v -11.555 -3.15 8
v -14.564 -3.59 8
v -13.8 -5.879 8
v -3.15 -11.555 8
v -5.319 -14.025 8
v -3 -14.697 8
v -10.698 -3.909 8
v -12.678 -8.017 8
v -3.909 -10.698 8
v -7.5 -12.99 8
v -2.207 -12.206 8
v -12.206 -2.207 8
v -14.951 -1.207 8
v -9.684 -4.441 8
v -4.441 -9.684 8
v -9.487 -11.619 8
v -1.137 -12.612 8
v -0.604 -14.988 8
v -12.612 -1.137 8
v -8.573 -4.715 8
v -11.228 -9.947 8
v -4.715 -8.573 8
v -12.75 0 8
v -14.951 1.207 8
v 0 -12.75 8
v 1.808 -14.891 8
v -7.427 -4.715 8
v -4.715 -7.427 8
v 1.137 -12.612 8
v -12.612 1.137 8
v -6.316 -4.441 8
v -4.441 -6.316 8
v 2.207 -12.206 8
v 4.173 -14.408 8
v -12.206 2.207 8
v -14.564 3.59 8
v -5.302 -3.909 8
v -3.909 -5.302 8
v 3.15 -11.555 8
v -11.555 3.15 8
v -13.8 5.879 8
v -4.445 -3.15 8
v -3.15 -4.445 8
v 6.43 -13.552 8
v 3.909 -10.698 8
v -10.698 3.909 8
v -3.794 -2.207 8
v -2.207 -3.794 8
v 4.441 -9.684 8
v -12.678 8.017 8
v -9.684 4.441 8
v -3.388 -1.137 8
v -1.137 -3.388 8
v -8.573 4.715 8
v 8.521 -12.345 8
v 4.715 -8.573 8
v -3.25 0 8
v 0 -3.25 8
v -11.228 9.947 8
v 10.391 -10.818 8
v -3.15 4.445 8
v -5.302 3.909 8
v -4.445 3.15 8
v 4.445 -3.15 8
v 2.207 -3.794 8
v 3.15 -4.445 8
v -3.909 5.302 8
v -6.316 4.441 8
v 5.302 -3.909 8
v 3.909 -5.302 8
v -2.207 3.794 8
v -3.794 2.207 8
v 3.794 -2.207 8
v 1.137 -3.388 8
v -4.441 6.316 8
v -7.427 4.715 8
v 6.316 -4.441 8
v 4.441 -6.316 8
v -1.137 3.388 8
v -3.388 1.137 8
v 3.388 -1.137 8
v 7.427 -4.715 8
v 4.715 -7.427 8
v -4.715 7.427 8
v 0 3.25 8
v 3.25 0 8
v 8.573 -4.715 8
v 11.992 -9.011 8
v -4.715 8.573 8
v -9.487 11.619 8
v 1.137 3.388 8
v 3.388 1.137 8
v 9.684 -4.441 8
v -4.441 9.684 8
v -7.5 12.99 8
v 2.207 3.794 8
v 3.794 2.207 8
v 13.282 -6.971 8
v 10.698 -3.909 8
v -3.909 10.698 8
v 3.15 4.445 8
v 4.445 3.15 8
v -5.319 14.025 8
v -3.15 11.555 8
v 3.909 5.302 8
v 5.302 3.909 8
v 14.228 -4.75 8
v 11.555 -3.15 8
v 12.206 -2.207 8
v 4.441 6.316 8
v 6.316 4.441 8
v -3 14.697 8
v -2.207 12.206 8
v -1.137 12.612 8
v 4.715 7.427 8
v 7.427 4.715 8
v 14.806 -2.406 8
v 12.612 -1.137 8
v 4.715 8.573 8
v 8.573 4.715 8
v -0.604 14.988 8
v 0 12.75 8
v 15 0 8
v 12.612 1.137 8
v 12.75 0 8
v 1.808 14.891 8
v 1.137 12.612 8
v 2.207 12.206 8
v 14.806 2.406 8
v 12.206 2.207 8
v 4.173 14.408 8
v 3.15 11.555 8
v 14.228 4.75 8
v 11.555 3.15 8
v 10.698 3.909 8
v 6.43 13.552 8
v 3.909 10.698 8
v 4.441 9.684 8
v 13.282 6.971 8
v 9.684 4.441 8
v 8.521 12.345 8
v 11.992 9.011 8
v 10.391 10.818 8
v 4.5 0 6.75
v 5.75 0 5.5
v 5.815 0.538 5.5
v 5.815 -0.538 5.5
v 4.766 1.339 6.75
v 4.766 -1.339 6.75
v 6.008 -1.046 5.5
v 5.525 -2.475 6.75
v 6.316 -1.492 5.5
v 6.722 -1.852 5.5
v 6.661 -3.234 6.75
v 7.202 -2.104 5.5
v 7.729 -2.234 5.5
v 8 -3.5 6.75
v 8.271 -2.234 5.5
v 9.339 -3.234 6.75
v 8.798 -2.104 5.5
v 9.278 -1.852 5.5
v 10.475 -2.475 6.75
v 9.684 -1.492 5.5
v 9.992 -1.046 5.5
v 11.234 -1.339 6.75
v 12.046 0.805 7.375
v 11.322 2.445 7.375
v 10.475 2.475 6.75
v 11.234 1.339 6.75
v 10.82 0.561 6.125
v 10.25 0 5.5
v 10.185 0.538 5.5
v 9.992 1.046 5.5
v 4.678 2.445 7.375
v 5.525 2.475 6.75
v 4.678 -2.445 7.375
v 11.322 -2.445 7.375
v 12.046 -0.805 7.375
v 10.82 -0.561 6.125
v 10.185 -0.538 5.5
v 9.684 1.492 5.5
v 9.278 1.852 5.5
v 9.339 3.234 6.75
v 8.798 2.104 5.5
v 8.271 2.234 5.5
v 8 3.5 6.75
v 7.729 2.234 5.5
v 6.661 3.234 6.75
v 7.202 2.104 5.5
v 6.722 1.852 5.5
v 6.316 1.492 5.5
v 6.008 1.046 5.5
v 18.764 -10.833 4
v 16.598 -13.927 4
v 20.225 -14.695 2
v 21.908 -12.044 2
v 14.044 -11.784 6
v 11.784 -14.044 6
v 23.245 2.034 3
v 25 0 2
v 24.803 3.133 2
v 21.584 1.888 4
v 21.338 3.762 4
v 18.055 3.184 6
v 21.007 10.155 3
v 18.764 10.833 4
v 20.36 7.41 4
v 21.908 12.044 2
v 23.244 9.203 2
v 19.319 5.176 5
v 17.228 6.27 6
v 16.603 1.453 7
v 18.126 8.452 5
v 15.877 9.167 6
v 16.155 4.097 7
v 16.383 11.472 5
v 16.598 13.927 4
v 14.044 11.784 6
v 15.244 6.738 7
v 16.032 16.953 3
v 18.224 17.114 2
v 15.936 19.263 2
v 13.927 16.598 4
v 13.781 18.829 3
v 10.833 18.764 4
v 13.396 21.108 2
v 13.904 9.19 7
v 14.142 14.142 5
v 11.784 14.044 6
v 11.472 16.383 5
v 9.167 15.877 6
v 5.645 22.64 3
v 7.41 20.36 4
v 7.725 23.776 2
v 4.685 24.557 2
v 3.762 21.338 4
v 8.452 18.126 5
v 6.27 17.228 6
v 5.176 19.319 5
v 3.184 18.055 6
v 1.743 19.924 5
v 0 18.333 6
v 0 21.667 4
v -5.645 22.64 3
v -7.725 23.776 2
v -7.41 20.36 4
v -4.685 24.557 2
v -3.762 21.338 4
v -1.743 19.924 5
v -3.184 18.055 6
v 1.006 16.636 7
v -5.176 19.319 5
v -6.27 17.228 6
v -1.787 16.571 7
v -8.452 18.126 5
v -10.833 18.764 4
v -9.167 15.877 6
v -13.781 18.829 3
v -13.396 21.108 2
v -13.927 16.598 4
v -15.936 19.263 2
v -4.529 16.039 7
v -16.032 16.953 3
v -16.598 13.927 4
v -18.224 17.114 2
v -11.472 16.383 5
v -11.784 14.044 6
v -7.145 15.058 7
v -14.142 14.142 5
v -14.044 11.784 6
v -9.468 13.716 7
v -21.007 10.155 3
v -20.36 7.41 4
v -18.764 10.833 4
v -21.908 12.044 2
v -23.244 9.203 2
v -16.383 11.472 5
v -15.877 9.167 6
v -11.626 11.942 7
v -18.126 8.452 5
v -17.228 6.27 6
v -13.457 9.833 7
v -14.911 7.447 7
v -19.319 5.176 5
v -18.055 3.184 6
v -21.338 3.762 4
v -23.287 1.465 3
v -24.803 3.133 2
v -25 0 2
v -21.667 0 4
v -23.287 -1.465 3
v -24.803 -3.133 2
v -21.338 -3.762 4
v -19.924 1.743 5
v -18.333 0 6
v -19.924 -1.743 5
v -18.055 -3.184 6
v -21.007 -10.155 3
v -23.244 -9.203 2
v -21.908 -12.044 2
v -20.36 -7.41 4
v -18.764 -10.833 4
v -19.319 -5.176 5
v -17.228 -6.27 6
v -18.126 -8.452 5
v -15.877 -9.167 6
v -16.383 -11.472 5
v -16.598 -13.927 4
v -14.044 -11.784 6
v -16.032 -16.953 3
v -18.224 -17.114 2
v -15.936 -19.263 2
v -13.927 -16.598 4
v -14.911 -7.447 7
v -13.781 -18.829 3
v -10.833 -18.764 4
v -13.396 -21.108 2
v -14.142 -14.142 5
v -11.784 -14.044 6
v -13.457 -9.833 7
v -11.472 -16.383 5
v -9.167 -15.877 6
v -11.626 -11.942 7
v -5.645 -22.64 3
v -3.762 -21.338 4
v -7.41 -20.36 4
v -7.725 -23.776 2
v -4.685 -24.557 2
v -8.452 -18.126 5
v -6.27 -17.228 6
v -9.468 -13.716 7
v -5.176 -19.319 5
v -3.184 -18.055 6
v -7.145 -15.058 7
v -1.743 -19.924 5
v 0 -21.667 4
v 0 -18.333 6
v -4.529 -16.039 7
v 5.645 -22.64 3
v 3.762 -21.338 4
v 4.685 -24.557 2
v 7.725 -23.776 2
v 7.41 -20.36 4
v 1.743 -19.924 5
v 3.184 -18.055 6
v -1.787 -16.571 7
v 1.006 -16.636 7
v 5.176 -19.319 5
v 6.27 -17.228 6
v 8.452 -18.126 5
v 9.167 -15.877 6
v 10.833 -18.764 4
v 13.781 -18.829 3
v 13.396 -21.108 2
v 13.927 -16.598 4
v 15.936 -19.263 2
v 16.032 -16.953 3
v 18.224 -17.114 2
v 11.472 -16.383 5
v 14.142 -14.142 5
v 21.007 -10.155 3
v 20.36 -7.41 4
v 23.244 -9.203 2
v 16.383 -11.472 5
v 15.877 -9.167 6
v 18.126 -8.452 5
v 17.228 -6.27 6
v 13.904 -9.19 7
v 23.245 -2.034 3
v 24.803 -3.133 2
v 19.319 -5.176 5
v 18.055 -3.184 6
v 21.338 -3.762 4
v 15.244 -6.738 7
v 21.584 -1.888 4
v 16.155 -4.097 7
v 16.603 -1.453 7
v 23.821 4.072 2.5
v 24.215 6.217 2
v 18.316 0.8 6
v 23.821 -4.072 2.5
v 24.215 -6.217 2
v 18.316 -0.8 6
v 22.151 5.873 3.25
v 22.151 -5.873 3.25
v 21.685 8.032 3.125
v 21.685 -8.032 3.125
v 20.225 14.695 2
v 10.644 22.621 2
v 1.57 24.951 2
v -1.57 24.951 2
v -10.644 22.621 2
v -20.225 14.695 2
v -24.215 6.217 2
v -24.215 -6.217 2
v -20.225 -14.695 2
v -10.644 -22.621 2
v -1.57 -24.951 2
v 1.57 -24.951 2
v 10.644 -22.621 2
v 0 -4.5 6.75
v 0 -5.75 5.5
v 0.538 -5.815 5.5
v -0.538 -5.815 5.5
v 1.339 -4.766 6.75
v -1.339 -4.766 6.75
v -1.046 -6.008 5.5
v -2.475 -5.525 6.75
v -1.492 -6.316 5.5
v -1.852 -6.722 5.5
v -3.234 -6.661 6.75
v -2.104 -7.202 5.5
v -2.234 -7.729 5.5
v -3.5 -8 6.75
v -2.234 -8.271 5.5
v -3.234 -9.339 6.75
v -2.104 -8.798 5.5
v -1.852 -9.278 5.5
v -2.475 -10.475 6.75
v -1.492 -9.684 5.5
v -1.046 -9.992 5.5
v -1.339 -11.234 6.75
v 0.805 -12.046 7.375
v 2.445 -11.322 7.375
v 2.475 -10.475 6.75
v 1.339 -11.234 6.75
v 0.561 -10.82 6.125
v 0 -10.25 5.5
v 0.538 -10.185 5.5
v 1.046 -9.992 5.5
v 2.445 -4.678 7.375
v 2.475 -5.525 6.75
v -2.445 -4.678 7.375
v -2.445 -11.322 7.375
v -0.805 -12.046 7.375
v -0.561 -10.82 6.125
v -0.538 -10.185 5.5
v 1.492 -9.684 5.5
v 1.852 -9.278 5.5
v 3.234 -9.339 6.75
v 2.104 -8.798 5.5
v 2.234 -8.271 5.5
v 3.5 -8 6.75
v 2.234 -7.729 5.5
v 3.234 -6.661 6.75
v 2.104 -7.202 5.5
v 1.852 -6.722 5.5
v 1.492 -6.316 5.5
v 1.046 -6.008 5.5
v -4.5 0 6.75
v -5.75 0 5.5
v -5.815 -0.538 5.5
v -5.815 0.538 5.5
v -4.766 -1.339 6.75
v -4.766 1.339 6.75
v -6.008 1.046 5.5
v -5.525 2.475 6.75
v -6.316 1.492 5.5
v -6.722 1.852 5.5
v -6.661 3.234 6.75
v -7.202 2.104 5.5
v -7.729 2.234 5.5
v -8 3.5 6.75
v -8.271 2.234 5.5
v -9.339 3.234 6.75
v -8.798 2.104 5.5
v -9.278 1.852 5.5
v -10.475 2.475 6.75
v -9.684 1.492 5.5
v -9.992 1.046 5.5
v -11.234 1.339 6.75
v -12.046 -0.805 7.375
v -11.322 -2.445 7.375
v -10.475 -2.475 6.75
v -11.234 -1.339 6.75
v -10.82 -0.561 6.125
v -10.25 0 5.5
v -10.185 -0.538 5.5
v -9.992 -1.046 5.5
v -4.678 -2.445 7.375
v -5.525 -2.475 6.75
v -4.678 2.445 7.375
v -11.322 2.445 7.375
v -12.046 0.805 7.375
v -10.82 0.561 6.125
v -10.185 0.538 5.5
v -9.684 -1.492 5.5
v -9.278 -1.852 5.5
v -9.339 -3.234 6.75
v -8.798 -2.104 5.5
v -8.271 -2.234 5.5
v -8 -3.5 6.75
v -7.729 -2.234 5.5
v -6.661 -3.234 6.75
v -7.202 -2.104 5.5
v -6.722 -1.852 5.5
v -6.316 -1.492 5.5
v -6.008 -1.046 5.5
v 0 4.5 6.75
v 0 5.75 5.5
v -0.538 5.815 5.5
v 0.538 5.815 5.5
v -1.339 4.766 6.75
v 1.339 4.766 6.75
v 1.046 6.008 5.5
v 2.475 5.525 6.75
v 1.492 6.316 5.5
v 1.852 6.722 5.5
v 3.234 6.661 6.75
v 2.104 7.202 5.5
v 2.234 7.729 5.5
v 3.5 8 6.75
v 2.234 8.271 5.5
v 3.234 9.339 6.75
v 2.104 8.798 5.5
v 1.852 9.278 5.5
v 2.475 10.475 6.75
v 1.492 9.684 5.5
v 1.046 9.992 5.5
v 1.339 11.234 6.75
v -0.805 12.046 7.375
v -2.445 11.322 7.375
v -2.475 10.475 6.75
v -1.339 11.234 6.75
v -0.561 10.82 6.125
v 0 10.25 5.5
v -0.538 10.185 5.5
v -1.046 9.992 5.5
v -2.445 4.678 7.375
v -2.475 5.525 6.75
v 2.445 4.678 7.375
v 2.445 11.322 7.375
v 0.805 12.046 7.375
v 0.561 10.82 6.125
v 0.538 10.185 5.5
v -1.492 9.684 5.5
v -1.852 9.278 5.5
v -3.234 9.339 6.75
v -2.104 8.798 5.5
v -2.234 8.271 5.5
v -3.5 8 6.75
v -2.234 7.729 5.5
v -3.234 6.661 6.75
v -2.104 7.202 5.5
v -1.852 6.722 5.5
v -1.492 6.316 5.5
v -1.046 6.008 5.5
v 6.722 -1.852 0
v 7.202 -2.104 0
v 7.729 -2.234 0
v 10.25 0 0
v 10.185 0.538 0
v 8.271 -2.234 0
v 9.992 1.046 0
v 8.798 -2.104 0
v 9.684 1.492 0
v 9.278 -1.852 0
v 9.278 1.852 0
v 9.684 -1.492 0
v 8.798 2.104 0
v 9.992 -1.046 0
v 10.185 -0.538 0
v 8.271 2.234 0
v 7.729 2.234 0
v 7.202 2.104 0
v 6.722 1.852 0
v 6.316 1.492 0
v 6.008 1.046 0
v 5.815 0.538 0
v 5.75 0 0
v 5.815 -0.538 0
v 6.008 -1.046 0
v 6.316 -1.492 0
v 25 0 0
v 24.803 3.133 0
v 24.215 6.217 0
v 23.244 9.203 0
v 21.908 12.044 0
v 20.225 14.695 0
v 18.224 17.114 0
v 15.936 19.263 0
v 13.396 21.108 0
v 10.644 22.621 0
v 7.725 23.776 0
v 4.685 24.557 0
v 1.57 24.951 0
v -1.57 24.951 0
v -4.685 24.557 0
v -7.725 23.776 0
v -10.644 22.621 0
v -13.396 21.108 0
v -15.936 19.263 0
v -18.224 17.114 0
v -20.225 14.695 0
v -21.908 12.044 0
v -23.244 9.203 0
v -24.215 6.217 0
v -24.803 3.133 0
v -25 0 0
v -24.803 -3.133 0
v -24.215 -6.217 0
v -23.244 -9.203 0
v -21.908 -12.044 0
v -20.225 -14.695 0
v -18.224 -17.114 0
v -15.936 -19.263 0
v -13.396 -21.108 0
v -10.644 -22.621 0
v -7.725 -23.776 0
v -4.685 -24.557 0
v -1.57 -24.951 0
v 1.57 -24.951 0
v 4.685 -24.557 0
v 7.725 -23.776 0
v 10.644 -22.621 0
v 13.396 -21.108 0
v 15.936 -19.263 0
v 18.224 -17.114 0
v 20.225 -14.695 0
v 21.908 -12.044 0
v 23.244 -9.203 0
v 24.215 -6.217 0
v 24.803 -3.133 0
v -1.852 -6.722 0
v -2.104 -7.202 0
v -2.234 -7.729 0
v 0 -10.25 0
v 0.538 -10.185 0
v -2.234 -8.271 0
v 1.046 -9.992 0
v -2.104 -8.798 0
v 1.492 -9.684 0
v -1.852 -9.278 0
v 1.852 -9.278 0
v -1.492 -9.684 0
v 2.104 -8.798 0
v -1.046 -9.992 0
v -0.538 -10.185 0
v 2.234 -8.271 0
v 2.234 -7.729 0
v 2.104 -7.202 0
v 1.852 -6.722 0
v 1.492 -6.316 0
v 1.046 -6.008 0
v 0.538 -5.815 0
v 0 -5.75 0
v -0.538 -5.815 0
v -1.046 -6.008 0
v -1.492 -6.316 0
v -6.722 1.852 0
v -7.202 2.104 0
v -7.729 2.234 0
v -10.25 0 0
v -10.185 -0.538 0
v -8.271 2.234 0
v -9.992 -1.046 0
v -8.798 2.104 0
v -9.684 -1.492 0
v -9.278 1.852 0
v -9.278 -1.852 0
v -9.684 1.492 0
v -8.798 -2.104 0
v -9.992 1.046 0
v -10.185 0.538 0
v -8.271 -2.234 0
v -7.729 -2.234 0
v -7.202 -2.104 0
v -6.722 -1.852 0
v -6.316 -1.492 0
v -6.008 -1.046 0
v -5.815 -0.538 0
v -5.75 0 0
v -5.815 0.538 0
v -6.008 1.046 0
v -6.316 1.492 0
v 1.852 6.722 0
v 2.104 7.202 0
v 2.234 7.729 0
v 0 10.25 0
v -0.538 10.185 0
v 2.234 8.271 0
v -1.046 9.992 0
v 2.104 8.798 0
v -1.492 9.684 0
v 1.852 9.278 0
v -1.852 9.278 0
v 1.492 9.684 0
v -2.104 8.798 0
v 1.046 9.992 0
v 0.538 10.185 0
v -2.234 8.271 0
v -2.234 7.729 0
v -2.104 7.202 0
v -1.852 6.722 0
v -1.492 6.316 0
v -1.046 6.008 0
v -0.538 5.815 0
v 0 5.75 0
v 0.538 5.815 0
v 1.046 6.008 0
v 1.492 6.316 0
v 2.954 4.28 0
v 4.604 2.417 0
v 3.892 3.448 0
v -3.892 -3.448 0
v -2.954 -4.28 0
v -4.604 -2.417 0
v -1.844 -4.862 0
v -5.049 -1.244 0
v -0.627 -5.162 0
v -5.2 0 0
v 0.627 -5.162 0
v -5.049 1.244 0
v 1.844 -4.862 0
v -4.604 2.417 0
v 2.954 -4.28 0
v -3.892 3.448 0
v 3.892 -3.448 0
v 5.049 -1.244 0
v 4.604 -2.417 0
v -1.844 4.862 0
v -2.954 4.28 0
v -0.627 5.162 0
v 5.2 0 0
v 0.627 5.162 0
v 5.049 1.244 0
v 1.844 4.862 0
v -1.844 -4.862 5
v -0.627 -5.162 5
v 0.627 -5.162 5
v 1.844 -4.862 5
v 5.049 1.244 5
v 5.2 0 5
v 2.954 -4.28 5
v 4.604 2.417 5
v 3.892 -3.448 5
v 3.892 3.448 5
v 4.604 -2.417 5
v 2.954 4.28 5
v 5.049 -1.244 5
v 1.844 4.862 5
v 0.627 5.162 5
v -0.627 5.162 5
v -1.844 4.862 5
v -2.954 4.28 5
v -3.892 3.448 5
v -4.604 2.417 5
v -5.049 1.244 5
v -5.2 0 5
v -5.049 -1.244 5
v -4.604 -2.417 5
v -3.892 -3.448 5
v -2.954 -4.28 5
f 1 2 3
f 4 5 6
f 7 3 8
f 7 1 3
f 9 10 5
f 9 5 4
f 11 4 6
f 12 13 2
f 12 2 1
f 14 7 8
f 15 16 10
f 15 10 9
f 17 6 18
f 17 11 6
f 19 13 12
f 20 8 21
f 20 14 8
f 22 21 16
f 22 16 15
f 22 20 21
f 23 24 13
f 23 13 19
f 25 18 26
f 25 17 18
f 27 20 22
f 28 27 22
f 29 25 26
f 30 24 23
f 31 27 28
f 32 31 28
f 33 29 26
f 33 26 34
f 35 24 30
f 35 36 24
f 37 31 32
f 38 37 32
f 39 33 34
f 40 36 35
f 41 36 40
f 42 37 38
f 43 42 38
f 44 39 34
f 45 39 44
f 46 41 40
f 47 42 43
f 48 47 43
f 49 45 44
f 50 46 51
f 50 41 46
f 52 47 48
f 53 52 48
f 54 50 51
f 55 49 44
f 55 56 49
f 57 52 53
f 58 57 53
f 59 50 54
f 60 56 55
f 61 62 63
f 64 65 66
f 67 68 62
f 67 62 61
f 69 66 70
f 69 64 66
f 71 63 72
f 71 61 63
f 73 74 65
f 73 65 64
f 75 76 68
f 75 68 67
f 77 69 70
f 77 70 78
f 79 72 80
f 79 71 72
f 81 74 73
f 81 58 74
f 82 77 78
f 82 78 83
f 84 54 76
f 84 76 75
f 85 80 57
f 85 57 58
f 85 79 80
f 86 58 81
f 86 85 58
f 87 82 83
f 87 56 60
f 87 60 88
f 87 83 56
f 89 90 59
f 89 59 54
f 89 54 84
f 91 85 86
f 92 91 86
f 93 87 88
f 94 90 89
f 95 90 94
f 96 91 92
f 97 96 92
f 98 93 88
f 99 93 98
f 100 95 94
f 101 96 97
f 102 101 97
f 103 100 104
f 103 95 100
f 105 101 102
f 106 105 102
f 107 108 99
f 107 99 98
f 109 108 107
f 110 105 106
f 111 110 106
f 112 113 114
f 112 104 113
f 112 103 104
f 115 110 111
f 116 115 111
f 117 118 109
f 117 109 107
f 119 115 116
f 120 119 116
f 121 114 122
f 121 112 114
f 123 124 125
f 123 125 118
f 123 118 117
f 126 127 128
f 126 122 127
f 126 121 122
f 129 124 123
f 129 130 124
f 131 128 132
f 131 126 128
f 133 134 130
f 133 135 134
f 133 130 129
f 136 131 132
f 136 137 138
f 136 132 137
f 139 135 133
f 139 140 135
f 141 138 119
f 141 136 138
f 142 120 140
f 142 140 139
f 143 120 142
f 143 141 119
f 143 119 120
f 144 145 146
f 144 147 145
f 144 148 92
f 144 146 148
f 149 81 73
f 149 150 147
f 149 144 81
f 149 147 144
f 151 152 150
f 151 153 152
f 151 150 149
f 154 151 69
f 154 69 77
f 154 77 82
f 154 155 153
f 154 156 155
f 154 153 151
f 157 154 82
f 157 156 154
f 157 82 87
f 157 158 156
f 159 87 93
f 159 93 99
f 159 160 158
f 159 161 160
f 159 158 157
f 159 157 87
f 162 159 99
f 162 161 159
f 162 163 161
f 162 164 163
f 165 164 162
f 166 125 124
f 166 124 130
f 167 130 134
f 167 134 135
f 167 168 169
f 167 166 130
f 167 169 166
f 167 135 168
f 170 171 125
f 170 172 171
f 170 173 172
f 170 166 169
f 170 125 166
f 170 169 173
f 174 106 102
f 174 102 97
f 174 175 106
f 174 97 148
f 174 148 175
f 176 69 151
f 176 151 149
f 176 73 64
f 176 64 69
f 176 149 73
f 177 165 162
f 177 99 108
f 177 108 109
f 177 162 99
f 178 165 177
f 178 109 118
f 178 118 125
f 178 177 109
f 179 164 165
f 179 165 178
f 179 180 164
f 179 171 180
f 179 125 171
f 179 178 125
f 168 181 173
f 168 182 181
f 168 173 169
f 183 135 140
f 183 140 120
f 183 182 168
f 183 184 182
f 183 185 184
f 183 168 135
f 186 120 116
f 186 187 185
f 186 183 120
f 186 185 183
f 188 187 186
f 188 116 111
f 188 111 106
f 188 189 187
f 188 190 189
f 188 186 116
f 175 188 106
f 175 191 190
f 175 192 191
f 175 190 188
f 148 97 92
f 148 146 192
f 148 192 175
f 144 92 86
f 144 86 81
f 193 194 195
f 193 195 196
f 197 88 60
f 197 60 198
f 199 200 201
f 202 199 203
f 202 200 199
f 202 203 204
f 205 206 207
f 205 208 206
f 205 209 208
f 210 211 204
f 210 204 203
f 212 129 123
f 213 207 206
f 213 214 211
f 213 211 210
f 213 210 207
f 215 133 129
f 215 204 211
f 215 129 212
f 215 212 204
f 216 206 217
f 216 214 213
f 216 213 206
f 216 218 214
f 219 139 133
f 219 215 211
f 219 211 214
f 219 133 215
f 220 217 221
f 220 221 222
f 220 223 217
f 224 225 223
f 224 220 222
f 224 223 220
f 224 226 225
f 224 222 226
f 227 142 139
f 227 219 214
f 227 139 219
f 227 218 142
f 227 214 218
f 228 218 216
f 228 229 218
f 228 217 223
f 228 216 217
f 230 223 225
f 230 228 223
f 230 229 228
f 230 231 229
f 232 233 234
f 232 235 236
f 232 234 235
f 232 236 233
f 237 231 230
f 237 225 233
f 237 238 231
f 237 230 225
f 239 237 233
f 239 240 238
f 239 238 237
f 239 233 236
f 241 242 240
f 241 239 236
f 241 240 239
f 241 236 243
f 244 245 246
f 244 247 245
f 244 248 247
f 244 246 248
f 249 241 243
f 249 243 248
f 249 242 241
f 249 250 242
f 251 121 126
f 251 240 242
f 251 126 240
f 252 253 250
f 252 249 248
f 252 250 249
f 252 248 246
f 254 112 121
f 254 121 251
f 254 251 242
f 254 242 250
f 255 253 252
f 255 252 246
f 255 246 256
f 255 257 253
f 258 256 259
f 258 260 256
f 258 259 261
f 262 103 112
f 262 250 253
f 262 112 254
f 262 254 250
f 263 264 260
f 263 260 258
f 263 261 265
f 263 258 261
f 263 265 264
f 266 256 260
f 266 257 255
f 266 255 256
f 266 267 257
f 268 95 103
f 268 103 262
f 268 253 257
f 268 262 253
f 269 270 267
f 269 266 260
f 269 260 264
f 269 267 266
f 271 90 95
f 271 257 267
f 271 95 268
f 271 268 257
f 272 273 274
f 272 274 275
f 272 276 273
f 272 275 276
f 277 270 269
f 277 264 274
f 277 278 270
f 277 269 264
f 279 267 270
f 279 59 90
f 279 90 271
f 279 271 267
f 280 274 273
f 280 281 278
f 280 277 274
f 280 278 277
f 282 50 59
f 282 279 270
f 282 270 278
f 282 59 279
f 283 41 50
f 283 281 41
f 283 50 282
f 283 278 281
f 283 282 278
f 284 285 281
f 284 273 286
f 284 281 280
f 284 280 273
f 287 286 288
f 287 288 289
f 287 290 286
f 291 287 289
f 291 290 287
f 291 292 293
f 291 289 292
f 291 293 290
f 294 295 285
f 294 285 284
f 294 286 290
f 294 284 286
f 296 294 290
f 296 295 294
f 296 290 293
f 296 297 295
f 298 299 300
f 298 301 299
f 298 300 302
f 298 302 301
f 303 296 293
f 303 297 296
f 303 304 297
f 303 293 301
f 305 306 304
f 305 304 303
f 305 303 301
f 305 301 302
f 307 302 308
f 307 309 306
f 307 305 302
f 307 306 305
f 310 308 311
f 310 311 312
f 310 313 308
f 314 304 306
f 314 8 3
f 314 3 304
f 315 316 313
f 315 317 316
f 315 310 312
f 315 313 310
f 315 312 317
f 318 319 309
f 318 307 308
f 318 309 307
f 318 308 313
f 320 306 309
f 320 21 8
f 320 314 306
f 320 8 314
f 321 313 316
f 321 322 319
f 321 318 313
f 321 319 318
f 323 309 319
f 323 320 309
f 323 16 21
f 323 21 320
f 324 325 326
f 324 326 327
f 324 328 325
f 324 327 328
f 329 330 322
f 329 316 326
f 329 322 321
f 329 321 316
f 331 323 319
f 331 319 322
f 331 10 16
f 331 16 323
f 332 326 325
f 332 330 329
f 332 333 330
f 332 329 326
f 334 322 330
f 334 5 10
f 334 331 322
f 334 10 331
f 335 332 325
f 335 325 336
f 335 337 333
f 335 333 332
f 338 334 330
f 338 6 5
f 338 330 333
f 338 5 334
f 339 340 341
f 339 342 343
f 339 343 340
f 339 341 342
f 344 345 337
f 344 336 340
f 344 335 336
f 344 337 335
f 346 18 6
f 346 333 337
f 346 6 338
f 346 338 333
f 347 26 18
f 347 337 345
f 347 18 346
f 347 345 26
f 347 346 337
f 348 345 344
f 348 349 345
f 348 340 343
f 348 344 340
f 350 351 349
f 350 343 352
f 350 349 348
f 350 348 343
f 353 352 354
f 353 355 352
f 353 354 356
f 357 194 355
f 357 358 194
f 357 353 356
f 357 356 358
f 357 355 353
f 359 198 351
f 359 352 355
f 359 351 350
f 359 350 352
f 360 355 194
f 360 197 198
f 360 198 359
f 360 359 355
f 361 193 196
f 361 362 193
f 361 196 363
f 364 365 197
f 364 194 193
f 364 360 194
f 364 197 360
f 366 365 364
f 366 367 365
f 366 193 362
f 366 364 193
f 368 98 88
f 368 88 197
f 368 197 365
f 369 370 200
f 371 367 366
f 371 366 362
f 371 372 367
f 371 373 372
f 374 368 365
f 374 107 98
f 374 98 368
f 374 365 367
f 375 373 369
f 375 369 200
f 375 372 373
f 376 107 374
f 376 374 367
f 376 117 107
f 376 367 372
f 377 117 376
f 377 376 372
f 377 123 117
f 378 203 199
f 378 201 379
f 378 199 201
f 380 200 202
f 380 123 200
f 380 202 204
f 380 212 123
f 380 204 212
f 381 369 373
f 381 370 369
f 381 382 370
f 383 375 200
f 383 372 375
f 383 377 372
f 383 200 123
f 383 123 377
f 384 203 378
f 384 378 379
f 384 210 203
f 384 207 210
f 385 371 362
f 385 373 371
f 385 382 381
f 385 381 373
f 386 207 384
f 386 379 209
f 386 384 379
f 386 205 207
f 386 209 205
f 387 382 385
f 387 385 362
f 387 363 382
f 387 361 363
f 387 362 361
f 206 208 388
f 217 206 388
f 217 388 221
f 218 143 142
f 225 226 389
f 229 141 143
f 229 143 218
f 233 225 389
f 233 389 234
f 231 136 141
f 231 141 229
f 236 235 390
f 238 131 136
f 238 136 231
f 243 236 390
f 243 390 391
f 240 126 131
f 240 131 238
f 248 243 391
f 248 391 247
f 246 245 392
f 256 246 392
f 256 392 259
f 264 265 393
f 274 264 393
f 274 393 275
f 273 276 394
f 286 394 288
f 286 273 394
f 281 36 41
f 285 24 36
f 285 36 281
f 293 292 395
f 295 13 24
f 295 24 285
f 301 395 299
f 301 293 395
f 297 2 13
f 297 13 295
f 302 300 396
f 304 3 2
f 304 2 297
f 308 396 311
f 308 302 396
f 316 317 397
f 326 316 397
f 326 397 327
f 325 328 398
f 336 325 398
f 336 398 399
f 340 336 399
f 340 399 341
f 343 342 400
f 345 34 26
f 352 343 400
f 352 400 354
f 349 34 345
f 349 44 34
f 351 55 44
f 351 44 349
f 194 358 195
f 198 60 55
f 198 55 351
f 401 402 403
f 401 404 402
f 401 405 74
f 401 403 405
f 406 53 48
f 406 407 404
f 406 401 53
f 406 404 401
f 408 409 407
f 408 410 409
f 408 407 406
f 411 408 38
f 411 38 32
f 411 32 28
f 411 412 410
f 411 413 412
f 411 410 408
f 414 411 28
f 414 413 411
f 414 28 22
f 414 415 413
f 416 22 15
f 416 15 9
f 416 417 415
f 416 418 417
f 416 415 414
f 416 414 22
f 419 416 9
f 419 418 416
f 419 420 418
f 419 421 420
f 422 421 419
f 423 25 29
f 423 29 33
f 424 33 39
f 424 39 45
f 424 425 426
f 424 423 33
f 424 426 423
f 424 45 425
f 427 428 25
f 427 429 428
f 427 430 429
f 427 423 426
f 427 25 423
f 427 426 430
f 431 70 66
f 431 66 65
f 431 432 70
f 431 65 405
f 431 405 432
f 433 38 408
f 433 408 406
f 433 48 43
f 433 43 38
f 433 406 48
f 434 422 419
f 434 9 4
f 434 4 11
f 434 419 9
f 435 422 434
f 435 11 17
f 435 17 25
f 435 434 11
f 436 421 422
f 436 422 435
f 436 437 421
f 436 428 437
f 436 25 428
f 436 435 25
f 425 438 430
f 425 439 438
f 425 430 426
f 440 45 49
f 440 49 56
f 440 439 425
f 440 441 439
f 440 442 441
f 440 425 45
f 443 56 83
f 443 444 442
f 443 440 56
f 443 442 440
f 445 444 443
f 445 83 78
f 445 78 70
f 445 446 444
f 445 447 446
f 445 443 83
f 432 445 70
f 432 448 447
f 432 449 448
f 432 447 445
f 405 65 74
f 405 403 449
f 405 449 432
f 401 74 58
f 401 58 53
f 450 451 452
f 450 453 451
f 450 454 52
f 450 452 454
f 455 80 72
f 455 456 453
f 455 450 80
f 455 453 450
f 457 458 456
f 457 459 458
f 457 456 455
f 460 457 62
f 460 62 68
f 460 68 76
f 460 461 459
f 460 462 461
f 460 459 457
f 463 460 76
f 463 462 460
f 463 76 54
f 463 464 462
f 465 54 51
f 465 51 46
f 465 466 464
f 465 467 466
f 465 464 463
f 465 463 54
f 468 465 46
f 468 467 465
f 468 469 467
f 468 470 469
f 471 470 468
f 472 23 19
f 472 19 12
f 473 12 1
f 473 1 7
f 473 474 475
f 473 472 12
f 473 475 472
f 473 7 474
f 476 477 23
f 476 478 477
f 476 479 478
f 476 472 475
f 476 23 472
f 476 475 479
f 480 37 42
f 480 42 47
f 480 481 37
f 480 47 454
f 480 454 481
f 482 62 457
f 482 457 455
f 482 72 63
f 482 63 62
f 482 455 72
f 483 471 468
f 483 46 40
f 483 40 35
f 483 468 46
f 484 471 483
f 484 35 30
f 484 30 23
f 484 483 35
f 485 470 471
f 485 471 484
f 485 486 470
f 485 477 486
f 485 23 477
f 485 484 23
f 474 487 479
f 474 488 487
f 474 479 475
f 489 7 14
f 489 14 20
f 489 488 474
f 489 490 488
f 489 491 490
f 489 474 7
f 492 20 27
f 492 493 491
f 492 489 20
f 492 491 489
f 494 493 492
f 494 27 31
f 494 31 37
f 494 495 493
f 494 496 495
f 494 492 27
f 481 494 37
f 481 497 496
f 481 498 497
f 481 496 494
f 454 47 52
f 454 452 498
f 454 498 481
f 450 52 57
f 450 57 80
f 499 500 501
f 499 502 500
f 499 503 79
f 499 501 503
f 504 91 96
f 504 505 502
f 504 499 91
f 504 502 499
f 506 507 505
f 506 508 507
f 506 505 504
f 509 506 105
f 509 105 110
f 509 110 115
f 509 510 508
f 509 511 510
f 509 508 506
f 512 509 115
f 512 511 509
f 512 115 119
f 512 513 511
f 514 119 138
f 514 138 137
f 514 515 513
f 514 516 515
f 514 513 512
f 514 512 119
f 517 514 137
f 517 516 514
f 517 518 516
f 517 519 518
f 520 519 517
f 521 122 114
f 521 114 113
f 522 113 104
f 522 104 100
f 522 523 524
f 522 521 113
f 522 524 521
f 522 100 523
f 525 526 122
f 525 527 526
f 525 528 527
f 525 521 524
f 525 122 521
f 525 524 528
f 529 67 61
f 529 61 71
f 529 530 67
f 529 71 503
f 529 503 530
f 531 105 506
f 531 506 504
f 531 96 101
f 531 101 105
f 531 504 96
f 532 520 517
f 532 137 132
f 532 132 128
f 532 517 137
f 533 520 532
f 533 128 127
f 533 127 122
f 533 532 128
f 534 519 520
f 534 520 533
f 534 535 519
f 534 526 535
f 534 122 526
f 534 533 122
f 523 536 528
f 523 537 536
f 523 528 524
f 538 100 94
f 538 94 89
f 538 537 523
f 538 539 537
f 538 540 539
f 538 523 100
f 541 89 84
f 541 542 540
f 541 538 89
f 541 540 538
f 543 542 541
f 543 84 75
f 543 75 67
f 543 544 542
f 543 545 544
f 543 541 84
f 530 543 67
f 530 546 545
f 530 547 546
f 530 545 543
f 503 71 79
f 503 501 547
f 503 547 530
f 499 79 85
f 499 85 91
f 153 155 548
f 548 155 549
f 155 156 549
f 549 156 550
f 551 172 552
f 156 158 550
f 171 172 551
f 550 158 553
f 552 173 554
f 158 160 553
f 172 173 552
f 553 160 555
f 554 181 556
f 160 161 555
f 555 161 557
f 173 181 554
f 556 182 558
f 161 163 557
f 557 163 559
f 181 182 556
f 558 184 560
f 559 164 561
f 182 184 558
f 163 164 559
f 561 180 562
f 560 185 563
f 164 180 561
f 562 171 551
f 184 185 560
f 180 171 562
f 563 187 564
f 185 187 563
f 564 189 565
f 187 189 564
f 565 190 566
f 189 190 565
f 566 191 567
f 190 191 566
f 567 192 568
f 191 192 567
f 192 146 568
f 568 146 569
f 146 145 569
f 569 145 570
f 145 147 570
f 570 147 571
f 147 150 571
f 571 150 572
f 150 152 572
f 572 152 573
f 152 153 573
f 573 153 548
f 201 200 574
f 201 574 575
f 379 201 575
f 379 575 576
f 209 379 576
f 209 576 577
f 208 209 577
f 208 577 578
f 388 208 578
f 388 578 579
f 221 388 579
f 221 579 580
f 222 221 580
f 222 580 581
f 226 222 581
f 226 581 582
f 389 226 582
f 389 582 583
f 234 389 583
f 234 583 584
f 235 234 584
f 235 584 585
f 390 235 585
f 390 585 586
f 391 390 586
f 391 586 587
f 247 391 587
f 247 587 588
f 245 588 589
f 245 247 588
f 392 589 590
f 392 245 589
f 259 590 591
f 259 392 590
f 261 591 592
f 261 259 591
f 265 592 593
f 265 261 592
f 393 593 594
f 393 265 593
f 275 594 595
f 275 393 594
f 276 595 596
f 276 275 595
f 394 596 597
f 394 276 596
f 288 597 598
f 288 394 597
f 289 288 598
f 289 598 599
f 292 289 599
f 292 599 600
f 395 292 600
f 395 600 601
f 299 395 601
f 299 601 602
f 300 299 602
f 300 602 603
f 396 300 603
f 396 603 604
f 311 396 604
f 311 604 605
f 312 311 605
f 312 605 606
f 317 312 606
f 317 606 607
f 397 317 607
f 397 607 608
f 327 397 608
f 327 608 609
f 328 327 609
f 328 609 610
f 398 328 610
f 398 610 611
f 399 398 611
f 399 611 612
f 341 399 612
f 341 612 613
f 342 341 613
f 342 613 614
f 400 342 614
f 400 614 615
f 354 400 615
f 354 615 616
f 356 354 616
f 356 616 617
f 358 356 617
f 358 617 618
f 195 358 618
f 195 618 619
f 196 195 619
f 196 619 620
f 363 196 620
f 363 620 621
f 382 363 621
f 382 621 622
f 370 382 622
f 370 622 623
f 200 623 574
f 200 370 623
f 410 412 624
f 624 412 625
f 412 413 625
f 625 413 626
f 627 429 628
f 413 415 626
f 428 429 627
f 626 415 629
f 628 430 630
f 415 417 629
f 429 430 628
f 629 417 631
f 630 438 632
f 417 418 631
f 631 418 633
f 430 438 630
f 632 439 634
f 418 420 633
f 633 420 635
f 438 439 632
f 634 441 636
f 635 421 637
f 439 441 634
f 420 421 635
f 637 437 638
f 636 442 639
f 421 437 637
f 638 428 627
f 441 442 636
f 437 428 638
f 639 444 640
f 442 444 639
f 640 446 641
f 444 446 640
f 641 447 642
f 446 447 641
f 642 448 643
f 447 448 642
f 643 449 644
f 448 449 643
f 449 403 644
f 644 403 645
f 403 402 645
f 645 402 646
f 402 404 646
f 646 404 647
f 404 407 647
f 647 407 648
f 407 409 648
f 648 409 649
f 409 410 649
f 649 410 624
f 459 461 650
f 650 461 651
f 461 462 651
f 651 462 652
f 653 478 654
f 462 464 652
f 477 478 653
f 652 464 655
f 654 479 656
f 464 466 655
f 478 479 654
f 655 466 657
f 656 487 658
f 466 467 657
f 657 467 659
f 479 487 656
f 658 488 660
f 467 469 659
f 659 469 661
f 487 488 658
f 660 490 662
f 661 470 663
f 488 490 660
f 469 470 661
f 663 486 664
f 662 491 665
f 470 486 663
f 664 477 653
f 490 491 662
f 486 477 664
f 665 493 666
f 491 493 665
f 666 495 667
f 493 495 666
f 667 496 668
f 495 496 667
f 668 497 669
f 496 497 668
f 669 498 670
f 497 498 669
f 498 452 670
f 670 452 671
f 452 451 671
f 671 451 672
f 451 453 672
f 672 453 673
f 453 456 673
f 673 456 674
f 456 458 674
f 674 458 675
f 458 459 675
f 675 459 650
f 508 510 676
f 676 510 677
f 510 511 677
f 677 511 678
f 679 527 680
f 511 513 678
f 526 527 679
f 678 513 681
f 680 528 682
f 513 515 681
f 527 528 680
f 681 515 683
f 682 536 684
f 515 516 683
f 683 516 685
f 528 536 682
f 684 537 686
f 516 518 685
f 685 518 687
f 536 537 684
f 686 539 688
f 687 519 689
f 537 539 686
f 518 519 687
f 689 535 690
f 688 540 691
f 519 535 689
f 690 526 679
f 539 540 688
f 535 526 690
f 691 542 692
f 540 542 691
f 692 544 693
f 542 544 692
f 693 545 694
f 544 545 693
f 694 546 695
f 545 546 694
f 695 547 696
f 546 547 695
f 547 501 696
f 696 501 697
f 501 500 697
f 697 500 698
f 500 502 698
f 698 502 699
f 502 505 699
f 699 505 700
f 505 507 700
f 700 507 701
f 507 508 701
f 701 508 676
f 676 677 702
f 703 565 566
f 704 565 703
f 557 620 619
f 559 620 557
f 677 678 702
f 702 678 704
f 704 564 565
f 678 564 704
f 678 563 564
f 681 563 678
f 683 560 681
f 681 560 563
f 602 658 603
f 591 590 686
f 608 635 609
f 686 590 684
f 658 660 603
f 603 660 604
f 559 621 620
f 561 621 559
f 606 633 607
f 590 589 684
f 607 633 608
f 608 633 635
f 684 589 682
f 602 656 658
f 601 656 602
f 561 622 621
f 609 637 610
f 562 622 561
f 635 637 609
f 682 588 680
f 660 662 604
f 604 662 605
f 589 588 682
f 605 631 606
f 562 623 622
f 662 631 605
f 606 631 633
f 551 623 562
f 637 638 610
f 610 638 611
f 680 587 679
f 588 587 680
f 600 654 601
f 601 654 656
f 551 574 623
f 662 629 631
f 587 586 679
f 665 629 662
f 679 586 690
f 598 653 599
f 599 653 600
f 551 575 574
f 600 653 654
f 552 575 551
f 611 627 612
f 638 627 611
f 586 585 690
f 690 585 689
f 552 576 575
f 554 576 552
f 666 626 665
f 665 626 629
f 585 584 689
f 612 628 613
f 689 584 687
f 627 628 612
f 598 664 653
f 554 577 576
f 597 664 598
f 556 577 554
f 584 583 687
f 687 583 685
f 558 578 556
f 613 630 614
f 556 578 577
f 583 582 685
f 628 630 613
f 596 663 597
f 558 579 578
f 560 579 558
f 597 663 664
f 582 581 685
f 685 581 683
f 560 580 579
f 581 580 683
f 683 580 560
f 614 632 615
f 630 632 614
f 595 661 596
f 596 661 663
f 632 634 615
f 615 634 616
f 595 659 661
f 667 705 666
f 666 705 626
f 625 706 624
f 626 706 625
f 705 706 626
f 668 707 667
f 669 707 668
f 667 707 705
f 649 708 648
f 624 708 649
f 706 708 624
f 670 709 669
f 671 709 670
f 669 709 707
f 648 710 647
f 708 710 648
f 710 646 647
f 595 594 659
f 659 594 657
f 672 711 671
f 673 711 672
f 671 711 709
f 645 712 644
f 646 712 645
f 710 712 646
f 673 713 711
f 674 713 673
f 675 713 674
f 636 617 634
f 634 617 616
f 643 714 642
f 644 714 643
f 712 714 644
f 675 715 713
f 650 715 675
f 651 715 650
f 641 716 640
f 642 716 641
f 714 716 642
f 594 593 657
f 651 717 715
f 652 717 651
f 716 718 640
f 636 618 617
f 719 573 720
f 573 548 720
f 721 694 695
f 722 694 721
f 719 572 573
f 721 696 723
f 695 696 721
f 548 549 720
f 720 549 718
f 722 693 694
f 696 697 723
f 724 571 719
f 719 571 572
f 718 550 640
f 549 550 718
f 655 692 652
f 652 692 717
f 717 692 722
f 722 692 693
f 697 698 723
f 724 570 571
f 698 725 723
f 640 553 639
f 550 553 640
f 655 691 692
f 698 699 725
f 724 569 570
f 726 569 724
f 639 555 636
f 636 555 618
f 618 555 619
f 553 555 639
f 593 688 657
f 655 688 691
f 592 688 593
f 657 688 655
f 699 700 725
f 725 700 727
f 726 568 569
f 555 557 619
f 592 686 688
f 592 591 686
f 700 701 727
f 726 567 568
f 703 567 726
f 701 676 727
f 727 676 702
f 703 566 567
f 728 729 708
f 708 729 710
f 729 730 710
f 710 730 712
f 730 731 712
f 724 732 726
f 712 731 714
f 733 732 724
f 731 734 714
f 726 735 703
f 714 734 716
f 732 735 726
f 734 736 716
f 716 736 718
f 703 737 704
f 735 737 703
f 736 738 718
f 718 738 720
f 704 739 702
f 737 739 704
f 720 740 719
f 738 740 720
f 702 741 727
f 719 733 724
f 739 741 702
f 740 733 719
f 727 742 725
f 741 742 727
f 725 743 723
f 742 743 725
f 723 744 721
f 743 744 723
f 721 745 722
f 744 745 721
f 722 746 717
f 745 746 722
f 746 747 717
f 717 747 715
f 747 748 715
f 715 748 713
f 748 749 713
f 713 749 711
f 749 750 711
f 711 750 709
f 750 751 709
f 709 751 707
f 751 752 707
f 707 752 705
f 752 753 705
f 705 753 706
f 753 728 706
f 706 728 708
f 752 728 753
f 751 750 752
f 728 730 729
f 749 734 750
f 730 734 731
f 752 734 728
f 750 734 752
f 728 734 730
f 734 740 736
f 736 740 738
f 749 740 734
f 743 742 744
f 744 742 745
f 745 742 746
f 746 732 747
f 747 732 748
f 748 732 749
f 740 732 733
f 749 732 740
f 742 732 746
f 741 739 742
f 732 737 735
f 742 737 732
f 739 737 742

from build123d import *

# Parameters (mm, degrees)
CYLINDER_R        = 5.2
CYLINDER_DEPTH    = 5
CYLINDER002_R     = 2.25
CYLINDER002_DEPTH = 15
ARRAY_COUNT       = 4
CYLINDER005_R     = 25
CYLINDER005_DEPTH = 2
CYLINDER001_R     = 15
CYLINDER001_DEPTH = 8
CHAMFER_SIZE      = 2.5


with BuildPart() as eje:
    # Cylinder → Cylinder (new body)
    with BuildSketch(Plane.XY):
        Circle(CYLINDER_R)
    extrude(amount=CYLINDER_DEPTH)


with BuildPart() as fusion:
    # Cylinder002 → Cylinder002 (new body)
    with BuildSketch(Plane(origin=(8, 0, 0), x_dir=(1, 0, 0), z_dir=(0, 0, 1))):
        Circle(CYLINDER002_R)
    extrude(amount=CYLINDER002_DEPTH)

    # Array: Fusion ×4 about axis
    array_axis = Axis((0, 0, 0), (0, 0, 1))


with BuildPart() as fusion_1:
    add(fusion.part)
    for i in range(1, ARRAY_COUNT):
        add(fusion.part.rotate(array_axis, i * 360 / ARRAY_COUNT))

    # Fusion: union eje
    add(eje.part)


with BuildPart() as cilindro003:
    # Cylinder005 → Cylinder005 (new body)
    with BuildSketch(Plane.XY):
        Circle(CYLINDER005_R)
    extrude(amount=CYLINDER005_DEPTH)


with BuildPart() as cono:
    # Cone → Cone (revolve)
    with BuildSketch(Plane(origin=(0, 0, 2), x_dir=(1, 0, 0), z_dir=(0, -1, 0))):
        Polygon((0, 0), (25, 0), (15, 6), (0, 6), align=None)
    revolve(axis=Axis((0, 0, 2), (0, 0, 1)))


with BuildPart() as chamfer_body:
    # Cylinder001 → Cylinder001 (new body)
    with BuildSketch(Plane.XY):
        Circle(CYLINDER001_R)
    extrude(amount=CYLINDER001_DEPTH)

    # Fusion001: union Cilindro003, Cono
    add(cilindro003.part)
    add(cono.part)

    # Cut: cut Fusion
    add(fusion_1.part, mode=Mode.SUBTRACT)

    # Chamfer
    chamfer_edges = [chamfer_body.edges().sort_by_distance(p)[0] for p in [
        (5.75, 0, 8),
        (0, -5.75, 8),
        (-5.75, 0, 8),
        (0, 5.75, 8),
    ]]
    chamfer(chamfer_edges, length=CHAMFER_SIZE)


solid = chamfer_body.part
